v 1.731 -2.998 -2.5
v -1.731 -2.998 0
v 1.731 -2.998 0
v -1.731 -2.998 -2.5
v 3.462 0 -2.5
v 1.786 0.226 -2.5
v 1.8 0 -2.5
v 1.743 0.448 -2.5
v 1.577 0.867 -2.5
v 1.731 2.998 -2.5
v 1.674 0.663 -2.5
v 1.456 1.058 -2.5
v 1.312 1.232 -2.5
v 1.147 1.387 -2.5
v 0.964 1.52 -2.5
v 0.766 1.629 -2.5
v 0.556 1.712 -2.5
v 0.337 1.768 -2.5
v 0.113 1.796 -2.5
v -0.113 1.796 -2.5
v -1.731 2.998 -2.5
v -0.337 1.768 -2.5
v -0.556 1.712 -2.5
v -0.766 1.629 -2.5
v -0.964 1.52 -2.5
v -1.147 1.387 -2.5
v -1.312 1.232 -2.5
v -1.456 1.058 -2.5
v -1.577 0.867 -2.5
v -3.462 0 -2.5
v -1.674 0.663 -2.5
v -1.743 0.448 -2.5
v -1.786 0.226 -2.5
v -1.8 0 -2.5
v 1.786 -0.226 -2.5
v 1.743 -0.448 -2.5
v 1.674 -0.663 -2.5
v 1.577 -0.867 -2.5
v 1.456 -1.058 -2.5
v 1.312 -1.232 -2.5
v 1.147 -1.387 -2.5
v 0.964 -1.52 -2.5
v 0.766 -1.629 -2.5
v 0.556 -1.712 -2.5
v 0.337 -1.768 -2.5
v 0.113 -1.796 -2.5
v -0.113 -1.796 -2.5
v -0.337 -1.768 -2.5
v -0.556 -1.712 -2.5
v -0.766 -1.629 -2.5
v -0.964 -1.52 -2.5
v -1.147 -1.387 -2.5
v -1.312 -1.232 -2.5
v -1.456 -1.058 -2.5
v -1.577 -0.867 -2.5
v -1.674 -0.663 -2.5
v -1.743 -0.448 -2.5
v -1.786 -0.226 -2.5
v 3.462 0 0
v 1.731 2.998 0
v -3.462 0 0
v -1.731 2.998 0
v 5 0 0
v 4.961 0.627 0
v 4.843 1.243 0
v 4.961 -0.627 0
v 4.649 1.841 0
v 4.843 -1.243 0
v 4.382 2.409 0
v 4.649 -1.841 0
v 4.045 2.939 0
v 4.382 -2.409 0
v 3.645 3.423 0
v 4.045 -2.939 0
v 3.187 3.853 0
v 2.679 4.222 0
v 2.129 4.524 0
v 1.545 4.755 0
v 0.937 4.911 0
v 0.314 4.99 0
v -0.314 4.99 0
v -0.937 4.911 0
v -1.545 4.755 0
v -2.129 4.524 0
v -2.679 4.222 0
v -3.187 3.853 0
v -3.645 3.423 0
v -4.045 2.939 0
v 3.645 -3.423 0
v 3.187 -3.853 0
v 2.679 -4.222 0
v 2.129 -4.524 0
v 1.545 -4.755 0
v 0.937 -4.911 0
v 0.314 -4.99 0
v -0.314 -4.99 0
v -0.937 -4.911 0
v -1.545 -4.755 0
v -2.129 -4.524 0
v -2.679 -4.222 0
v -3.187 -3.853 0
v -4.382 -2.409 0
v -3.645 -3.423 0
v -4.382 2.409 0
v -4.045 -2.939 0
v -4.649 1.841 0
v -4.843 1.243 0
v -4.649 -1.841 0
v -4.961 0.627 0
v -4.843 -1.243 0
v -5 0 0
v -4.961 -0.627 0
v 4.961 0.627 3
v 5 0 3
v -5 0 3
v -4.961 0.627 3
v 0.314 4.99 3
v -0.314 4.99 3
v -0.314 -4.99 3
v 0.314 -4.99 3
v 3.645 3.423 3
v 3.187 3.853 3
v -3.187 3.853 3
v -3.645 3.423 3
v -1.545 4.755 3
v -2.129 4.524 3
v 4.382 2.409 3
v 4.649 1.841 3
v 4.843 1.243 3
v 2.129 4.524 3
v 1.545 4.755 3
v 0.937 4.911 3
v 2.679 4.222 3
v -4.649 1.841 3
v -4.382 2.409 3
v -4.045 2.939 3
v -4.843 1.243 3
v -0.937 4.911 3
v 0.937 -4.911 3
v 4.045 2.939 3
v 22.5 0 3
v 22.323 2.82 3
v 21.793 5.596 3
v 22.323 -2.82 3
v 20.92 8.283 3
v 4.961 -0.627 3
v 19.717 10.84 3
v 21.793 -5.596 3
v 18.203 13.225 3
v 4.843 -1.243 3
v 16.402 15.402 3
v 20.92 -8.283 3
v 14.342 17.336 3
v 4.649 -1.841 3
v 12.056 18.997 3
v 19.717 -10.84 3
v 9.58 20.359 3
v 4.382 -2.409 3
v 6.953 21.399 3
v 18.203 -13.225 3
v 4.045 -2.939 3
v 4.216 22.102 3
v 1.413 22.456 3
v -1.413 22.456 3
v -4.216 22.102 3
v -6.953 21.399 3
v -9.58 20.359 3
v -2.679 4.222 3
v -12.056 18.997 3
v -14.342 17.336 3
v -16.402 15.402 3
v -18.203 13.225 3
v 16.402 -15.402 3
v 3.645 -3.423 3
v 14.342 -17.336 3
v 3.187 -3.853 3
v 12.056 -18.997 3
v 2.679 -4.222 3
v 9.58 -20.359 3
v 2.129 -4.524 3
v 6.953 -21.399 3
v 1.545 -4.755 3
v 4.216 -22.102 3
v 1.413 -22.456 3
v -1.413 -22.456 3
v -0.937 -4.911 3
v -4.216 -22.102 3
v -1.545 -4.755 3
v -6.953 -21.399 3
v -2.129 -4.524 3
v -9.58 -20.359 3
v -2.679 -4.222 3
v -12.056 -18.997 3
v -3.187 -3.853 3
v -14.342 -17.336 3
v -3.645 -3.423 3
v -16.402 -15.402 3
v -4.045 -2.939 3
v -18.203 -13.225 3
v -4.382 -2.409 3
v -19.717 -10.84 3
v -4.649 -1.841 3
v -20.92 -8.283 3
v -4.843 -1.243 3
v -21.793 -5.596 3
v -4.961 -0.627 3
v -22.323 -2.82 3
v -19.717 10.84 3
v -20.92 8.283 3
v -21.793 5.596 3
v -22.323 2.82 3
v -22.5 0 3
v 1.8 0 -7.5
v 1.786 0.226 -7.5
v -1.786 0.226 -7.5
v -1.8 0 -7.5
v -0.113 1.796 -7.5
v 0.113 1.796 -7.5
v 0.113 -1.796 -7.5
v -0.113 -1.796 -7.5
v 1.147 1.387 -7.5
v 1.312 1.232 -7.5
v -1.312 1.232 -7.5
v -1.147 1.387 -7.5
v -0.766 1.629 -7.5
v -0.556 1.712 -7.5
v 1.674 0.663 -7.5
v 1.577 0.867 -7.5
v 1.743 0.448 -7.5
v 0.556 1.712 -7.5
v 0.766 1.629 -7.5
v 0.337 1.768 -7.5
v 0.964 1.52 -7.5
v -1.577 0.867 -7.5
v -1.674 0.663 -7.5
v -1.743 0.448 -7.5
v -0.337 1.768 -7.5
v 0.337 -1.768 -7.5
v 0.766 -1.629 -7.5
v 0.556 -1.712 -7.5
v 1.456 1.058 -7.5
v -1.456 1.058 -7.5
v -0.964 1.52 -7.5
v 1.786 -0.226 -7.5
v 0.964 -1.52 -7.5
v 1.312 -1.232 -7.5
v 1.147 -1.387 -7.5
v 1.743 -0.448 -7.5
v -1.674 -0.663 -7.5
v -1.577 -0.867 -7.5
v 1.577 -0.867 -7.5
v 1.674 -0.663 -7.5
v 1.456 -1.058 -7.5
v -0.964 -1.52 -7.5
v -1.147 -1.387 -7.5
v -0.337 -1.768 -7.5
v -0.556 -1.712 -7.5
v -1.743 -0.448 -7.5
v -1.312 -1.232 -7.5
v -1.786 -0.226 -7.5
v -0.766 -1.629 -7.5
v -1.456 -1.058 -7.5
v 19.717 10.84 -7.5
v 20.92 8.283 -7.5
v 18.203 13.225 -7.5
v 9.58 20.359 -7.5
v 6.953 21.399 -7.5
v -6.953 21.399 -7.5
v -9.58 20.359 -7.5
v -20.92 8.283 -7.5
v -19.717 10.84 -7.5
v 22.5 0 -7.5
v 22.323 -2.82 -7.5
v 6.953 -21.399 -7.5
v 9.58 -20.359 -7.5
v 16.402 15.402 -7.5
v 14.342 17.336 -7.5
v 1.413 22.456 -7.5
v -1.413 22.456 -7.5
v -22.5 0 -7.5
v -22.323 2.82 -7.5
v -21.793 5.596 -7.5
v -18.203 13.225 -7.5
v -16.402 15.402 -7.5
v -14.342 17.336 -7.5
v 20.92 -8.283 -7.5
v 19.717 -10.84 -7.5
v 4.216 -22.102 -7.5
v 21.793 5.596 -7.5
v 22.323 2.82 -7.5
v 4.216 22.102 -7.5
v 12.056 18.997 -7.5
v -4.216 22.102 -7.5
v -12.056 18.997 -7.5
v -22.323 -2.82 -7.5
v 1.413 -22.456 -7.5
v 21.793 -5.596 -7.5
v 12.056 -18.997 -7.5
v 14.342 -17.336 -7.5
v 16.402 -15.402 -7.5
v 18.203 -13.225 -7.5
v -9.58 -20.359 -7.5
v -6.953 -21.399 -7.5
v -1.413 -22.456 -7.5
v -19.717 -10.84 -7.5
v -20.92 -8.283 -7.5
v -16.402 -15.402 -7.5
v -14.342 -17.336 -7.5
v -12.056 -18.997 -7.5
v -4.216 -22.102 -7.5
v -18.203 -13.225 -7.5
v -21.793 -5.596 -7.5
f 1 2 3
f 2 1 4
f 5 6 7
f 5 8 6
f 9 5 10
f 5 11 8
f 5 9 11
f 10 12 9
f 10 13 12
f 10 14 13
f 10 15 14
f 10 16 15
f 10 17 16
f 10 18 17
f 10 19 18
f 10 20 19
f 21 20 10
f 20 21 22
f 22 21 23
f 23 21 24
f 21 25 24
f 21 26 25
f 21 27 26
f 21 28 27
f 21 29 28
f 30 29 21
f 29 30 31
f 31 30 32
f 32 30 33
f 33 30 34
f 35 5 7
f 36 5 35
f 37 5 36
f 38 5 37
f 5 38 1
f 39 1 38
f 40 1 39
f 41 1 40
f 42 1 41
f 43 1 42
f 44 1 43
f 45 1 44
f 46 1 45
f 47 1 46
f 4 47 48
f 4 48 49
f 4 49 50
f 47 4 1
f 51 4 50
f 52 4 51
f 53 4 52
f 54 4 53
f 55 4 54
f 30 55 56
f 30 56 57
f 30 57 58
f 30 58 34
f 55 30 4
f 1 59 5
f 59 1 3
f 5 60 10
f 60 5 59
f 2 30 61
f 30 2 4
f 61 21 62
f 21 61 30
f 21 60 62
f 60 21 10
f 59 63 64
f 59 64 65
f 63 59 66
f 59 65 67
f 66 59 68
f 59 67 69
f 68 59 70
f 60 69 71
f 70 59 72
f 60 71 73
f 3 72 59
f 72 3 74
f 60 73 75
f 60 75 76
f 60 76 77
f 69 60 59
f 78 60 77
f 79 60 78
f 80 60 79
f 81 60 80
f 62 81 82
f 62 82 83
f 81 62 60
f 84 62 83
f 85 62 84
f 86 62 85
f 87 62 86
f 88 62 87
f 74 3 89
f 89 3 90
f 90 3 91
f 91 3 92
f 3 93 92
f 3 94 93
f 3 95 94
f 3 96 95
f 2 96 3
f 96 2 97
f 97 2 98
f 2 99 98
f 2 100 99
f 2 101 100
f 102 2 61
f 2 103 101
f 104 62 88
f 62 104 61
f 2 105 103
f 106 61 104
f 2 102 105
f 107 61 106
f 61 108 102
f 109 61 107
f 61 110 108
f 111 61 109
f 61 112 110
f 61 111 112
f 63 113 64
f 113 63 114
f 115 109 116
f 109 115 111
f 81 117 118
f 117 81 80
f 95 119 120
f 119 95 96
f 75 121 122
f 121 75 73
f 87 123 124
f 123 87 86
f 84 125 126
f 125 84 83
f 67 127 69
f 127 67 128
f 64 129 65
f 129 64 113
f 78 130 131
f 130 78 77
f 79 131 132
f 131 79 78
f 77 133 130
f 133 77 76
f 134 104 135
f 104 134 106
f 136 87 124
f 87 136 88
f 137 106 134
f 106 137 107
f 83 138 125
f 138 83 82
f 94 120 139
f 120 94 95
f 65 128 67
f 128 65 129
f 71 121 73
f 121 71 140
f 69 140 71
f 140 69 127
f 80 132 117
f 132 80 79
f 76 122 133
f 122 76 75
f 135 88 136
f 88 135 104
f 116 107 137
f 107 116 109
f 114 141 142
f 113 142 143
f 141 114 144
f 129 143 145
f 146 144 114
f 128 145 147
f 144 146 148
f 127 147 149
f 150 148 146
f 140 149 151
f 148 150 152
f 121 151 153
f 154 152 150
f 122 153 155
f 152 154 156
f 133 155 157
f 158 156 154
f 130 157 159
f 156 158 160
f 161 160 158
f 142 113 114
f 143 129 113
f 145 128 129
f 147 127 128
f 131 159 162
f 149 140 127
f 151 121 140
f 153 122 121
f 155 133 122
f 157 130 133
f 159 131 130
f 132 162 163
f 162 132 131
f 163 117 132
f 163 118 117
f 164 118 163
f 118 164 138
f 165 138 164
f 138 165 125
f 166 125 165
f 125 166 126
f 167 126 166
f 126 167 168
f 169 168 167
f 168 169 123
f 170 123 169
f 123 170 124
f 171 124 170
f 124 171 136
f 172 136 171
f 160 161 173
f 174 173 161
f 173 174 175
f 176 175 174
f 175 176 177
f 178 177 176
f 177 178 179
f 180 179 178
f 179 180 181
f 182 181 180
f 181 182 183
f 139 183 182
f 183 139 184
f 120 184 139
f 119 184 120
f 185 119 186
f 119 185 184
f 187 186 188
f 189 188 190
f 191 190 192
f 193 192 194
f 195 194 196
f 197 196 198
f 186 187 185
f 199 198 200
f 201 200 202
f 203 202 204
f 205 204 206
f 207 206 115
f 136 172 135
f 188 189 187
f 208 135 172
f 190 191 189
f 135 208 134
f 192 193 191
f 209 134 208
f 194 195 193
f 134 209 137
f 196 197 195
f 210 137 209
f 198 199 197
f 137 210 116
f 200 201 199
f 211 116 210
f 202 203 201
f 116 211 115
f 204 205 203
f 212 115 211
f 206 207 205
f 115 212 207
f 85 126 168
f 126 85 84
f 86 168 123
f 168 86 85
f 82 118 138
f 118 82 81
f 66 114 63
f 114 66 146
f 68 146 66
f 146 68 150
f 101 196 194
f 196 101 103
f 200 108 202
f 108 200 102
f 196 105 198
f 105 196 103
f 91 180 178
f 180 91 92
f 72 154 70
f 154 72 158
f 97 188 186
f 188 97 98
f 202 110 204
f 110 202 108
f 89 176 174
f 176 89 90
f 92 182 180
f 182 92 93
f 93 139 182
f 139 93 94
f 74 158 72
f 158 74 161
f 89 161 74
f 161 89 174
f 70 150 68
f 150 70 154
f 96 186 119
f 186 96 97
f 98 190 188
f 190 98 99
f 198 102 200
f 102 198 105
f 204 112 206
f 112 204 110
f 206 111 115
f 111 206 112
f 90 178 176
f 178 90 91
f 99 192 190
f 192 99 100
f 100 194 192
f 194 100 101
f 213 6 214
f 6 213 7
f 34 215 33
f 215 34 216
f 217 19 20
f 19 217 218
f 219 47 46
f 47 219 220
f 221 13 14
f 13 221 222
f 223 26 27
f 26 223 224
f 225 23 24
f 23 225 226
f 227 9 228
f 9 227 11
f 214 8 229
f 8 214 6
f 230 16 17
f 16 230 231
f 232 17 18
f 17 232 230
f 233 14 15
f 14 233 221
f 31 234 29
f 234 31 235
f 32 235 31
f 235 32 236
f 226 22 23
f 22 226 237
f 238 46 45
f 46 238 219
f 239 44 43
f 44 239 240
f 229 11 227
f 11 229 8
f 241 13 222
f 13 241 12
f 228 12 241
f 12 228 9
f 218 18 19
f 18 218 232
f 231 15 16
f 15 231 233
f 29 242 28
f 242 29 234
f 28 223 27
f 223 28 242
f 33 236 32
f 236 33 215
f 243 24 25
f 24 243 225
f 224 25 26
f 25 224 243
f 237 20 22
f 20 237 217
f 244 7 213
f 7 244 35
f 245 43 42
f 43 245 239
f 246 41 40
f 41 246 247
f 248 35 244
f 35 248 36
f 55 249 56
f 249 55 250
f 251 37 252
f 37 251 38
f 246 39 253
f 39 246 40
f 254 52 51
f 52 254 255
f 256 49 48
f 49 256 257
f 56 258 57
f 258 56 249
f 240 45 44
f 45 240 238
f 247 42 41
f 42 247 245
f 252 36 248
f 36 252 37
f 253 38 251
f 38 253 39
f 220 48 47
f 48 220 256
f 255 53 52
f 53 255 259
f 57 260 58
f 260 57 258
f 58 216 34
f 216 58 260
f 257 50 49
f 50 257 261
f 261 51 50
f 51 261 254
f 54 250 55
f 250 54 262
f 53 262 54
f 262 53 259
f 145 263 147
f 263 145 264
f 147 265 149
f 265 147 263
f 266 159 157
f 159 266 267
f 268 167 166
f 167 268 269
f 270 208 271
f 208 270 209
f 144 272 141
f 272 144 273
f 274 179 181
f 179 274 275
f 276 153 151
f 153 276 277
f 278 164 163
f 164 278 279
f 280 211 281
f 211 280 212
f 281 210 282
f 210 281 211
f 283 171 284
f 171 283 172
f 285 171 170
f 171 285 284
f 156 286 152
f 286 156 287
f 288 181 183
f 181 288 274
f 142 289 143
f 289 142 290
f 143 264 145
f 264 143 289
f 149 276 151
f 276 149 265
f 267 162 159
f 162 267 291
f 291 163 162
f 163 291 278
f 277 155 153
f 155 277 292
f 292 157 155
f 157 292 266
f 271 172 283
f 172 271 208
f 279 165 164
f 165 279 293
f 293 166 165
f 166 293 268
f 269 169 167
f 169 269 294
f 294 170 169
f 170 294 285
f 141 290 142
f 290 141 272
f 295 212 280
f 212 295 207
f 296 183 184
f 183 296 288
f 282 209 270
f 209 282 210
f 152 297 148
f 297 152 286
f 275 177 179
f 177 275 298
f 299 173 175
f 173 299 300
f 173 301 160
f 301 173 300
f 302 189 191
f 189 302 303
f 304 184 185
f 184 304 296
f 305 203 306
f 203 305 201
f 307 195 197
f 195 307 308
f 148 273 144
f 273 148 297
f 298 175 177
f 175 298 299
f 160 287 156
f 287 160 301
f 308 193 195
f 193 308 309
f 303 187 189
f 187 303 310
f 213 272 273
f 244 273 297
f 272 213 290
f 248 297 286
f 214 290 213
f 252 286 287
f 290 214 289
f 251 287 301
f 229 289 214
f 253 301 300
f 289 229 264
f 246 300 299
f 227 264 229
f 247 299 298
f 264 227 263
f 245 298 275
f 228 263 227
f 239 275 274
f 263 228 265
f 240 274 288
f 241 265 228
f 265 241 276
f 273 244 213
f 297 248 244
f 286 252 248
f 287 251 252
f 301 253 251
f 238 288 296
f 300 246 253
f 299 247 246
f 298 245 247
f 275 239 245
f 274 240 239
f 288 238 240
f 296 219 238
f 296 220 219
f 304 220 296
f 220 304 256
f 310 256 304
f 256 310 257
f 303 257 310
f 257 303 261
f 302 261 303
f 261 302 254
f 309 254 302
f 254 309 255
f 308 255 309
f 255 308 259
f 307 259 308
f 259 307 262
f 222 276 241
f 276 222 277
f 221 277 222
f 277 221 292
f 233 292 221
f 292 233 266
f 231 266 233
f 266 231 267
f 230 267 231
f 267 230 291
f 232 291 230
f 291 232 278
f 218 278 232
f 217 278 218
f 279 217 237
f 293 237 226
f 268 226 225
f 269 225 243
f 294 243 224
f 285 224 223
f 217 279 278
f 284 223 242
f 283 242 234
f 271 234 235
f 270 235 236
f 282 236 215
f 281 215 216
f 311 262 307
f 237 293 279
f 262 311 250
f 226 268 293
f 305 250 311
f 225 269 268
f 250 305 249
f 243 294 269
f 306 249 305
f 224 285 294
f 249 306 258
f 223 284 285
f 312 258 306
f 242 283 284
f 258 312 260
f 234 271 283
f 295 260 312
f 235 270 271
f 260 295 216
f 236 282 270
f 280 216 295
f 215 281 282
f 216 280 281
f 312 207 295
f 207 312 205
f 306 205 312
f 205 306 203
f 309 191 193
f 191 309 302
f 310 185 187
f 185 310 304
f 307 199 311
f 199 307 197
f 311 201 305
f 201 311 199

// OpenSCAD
$fn = 50;

difference() {
	union() {
		translate(v = [0, 0, -7.5]) {
			cylinder(h = 10.5, r = 22.5);
		}
	}
	union() {
		translate(v = [0, 0, 0]) {
			rotate(a = [0, 0, 0]) {
				difference() {
					union() {
						translate(v = [0, 0, -2.5]) {
							linear_extrude(height = 2.5) {
								polygon(points = [[3.4619999999999997, 0.0], [1.7310000000000003, 2.9981799479017264], [-1.7309999999999992, 2.9981799479017264], [-3.4619999999999997, 4.2397272186481365e-16], [-1.7310000000000014, -2.998179947901726], [1.7309999999999977, -2.9981799479017277]]);
							}
						}
					}
					union();
				}
			}
		}
		#cylinder(h = 3, r = 5.0);
		#translate(v = [0, 0, -100.0]) {
			cylinder(h = 200, r = 1.8);
		}
	}
}
